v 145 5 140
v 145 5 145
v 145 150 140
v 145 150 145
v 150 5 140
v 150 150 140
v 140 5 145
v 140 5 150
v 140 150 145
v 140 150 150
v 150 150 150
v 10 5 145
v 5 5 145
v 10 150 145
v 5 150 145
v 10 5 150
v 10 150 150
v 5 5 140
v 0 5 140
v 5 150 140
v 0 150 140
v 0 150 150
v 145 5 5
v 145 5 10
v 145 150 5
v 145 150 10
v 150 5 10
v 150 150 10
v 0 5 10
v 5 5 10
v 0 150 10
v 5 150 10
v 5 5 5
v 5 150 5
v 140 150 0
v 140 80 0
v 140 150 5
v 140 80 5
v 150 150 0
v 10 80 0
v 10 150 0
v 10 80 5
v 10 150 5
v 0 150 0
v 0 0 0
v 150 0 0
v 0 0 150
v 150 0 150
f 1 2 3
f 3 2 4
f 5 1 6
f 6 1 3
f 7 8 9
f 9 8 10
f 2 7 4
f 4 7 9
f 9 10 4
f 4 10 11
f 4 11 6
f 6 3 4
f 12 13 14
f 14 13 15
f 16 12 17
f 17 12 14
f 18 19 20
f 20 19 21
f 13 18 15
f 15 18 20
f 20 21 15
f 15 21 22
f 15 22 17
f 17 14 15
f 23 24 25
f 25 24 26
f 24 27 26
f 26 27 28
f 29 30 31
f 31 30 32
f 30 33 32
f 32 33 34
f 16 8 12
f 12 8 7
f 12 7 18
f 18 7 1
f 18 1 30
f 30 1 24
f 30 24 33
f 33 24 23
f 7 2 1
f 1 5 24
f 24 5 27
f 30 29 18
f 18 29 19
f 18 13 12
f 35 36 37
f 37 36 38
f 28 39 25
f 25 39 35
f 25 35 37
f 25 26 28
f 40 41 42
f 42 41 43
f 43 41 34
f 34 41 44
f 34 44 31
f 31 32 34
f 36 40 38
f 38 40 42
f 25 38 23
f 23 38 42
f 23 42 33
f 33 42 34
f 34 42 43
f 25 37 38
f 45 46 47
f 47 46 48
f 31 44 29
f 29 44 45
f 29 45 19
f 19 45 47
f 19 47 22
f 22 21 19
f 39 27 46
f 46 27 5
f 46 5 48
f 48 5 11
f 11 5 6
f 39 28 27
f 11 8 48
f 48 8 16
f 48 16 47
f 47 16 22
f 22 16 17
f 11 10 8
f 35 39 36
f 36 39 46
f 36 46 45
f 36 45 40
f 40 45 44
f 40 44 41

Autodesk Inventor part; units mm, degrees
ref_plane "YZ Plane" through (0, 0, 0) normal (1, 0, 0) x (0, 1, 0)
ref_plane "XZ Plane" through (0, 0, 0) normal (0, 1, 0) x (-1, 0, 0)
ref_plane "XY Plane" through (0, 0, 0) normal (0, 0, 1) x (1, 0, 0)
sketch "스케치1" plane through (0, 0, 0) normal (0, 0, 1) x (1, 0, 0)
  line L0 (0, 0) -> (150, 0)
  line L1 (150, 0) -> (150, 150)
  line L2 (0, 150) -> (0, 0)
  line L3 (0, 80) -> (150, 80)
  line L4 (0, 5) -> (150, 5)
  line L5 (0, 150) -> (10, 150)
  line L6 (10, 150) -> (10, 80)
  line L7 (10, 80) -> (0, 80)
  line L8 (0, 80) -> (0, 150)
  line L9 (150, 150) -> (140, 150)
  line L10 (140, 150) -> (140, 80)
  line L11 (140, 80) -> (150, 80)
  line L12 (150, 80) -> (150, 150)
  line L13 (150, 150) -> (140, 150)
  line L14 (10, 150) -> (0, 150)
  dimension "d0" = 150
  dimension "d1" = 150
  dimension "d2" = 80
  dimension "d3" = 5
  dimension "d4" = 10
  dimension "d5" = 10
extrude "돌출1" add sketch "스케치1" along normal blind 150 contours L2 L4 L1 L0
extrude "돌출2" add sketch "스케치1" along normal blind 5 contours L2 L3 L1 L4
extrude "돌출3" add sketch "스케치1" along normal blind 5 contours L2 L5 L6 L3 | L3 L10 L9 L1
sketch "스케치2" plane through (0, 5, 150) normal (0, 1, 0) x (1, 0, 0)
  line L0 (150, 145) -> (0, 145) projected
  line L1 (0, 145) -> (0, 0) projected
  line L2 (150, 0) -> (0, 0) projected
  line L3 (150, 145) -> (150, 0) projected
  line L4 (140, 145) -> (140, 150) projected
  line L5 (140, 150) -> (10, 150) projected
  line L6 (10, 150) -> (10, 145) projected
  line L7 (140, 145) -> (10, 145) projected
  line L8 (10, 150) -> (0, 150) projected
  line L9 (0, 150) -> (0, 145) projected
  line L10 (10, 145) -> (0, 145) projected
  line L11 (10, 150) -> (10, 145) projected
  line L12 (150, 150) -> (140, 150) projected
  line L13 (140, 150) -> (140, 145) projected
  line L14 (150, 145) -> (140, 145) projected
  line L15 (150, 150) -> (150, 145) projected
  line L16 (0, 150) -> (5, 150)
  line L17 (5, 150) -> (5, 140)
  line L18 (5, 140) -> (0, 140)
  line L19 (0, 140) -> (0, 150)
  line L20 (0, 150) -> (150, 150) projected
  line L21 (0, 150) -> (0, 140)
  line L22 (5, 140) -> (5, 145)
  line L23 (10, 145) -> (10, 150)
  line L24 (0, 75) -> (150, 75)
  line L25 (150, 145) -> (150, 0) projected
  line L26 (75, 0) -> (75, 150)
  line L27 (10, 0) -> (10, 5)
  line L28 (10, 0) -> (0, 0)
  line L29 (5, 5) -> (5, 10)
  line L30 (5, 10) -> (0, 10)
  line L31 (0, 10) -> (0, 0)
  line L32 (5, 5) -> (10, 5)
  line L33 (5, 145) -> (10, 145)
  line L34 (10, 150.1761) -> (0, 150)
  line L35 (10, 0) -> (0, 0)
  line L36 (0, 145) -> (150, 145)
  line L37 (150, 145) -> (150, 0)
  line L38 (0, 0) -> (150, 0)
  line L39 (140, 150) -> (140, 145)
  line L40 (145, 140) -> (150, 140)
  line L41 (145, 140) -> (145, 145)
  line L42 (145, 10) -> (150, 10)
  line L43 (150, 10) -> (150, 0)
  line L44 (145, 5) -> (145, 10)
  line L45 (145, 5) -> (140, 5)
  line L46 (140, 0) -> (140, 5)
  point P0 (5, 0)
  point P1 (140, 5)
  point P2 (140, 0)
  point P3 (150, 10)
  point P4 (0, 10)
  point P5 (0, 140)
  dimension "d12" = 5
  dimension "d13" = 10
  dimension "d14" = 150
  dimension "d15" = 10
  dimension "d16" = 150
  dimension "d17" = 150
extrude "돌출4" add sketch "스케치2" along normal blind 145 contours L3 L40 L41 L0 | L3 L2 L46 L45 L44 L42 | L17 L18 L1 L0 | L30 L29 L32 L27 L2 L1
properties part number "적재부 하판"
